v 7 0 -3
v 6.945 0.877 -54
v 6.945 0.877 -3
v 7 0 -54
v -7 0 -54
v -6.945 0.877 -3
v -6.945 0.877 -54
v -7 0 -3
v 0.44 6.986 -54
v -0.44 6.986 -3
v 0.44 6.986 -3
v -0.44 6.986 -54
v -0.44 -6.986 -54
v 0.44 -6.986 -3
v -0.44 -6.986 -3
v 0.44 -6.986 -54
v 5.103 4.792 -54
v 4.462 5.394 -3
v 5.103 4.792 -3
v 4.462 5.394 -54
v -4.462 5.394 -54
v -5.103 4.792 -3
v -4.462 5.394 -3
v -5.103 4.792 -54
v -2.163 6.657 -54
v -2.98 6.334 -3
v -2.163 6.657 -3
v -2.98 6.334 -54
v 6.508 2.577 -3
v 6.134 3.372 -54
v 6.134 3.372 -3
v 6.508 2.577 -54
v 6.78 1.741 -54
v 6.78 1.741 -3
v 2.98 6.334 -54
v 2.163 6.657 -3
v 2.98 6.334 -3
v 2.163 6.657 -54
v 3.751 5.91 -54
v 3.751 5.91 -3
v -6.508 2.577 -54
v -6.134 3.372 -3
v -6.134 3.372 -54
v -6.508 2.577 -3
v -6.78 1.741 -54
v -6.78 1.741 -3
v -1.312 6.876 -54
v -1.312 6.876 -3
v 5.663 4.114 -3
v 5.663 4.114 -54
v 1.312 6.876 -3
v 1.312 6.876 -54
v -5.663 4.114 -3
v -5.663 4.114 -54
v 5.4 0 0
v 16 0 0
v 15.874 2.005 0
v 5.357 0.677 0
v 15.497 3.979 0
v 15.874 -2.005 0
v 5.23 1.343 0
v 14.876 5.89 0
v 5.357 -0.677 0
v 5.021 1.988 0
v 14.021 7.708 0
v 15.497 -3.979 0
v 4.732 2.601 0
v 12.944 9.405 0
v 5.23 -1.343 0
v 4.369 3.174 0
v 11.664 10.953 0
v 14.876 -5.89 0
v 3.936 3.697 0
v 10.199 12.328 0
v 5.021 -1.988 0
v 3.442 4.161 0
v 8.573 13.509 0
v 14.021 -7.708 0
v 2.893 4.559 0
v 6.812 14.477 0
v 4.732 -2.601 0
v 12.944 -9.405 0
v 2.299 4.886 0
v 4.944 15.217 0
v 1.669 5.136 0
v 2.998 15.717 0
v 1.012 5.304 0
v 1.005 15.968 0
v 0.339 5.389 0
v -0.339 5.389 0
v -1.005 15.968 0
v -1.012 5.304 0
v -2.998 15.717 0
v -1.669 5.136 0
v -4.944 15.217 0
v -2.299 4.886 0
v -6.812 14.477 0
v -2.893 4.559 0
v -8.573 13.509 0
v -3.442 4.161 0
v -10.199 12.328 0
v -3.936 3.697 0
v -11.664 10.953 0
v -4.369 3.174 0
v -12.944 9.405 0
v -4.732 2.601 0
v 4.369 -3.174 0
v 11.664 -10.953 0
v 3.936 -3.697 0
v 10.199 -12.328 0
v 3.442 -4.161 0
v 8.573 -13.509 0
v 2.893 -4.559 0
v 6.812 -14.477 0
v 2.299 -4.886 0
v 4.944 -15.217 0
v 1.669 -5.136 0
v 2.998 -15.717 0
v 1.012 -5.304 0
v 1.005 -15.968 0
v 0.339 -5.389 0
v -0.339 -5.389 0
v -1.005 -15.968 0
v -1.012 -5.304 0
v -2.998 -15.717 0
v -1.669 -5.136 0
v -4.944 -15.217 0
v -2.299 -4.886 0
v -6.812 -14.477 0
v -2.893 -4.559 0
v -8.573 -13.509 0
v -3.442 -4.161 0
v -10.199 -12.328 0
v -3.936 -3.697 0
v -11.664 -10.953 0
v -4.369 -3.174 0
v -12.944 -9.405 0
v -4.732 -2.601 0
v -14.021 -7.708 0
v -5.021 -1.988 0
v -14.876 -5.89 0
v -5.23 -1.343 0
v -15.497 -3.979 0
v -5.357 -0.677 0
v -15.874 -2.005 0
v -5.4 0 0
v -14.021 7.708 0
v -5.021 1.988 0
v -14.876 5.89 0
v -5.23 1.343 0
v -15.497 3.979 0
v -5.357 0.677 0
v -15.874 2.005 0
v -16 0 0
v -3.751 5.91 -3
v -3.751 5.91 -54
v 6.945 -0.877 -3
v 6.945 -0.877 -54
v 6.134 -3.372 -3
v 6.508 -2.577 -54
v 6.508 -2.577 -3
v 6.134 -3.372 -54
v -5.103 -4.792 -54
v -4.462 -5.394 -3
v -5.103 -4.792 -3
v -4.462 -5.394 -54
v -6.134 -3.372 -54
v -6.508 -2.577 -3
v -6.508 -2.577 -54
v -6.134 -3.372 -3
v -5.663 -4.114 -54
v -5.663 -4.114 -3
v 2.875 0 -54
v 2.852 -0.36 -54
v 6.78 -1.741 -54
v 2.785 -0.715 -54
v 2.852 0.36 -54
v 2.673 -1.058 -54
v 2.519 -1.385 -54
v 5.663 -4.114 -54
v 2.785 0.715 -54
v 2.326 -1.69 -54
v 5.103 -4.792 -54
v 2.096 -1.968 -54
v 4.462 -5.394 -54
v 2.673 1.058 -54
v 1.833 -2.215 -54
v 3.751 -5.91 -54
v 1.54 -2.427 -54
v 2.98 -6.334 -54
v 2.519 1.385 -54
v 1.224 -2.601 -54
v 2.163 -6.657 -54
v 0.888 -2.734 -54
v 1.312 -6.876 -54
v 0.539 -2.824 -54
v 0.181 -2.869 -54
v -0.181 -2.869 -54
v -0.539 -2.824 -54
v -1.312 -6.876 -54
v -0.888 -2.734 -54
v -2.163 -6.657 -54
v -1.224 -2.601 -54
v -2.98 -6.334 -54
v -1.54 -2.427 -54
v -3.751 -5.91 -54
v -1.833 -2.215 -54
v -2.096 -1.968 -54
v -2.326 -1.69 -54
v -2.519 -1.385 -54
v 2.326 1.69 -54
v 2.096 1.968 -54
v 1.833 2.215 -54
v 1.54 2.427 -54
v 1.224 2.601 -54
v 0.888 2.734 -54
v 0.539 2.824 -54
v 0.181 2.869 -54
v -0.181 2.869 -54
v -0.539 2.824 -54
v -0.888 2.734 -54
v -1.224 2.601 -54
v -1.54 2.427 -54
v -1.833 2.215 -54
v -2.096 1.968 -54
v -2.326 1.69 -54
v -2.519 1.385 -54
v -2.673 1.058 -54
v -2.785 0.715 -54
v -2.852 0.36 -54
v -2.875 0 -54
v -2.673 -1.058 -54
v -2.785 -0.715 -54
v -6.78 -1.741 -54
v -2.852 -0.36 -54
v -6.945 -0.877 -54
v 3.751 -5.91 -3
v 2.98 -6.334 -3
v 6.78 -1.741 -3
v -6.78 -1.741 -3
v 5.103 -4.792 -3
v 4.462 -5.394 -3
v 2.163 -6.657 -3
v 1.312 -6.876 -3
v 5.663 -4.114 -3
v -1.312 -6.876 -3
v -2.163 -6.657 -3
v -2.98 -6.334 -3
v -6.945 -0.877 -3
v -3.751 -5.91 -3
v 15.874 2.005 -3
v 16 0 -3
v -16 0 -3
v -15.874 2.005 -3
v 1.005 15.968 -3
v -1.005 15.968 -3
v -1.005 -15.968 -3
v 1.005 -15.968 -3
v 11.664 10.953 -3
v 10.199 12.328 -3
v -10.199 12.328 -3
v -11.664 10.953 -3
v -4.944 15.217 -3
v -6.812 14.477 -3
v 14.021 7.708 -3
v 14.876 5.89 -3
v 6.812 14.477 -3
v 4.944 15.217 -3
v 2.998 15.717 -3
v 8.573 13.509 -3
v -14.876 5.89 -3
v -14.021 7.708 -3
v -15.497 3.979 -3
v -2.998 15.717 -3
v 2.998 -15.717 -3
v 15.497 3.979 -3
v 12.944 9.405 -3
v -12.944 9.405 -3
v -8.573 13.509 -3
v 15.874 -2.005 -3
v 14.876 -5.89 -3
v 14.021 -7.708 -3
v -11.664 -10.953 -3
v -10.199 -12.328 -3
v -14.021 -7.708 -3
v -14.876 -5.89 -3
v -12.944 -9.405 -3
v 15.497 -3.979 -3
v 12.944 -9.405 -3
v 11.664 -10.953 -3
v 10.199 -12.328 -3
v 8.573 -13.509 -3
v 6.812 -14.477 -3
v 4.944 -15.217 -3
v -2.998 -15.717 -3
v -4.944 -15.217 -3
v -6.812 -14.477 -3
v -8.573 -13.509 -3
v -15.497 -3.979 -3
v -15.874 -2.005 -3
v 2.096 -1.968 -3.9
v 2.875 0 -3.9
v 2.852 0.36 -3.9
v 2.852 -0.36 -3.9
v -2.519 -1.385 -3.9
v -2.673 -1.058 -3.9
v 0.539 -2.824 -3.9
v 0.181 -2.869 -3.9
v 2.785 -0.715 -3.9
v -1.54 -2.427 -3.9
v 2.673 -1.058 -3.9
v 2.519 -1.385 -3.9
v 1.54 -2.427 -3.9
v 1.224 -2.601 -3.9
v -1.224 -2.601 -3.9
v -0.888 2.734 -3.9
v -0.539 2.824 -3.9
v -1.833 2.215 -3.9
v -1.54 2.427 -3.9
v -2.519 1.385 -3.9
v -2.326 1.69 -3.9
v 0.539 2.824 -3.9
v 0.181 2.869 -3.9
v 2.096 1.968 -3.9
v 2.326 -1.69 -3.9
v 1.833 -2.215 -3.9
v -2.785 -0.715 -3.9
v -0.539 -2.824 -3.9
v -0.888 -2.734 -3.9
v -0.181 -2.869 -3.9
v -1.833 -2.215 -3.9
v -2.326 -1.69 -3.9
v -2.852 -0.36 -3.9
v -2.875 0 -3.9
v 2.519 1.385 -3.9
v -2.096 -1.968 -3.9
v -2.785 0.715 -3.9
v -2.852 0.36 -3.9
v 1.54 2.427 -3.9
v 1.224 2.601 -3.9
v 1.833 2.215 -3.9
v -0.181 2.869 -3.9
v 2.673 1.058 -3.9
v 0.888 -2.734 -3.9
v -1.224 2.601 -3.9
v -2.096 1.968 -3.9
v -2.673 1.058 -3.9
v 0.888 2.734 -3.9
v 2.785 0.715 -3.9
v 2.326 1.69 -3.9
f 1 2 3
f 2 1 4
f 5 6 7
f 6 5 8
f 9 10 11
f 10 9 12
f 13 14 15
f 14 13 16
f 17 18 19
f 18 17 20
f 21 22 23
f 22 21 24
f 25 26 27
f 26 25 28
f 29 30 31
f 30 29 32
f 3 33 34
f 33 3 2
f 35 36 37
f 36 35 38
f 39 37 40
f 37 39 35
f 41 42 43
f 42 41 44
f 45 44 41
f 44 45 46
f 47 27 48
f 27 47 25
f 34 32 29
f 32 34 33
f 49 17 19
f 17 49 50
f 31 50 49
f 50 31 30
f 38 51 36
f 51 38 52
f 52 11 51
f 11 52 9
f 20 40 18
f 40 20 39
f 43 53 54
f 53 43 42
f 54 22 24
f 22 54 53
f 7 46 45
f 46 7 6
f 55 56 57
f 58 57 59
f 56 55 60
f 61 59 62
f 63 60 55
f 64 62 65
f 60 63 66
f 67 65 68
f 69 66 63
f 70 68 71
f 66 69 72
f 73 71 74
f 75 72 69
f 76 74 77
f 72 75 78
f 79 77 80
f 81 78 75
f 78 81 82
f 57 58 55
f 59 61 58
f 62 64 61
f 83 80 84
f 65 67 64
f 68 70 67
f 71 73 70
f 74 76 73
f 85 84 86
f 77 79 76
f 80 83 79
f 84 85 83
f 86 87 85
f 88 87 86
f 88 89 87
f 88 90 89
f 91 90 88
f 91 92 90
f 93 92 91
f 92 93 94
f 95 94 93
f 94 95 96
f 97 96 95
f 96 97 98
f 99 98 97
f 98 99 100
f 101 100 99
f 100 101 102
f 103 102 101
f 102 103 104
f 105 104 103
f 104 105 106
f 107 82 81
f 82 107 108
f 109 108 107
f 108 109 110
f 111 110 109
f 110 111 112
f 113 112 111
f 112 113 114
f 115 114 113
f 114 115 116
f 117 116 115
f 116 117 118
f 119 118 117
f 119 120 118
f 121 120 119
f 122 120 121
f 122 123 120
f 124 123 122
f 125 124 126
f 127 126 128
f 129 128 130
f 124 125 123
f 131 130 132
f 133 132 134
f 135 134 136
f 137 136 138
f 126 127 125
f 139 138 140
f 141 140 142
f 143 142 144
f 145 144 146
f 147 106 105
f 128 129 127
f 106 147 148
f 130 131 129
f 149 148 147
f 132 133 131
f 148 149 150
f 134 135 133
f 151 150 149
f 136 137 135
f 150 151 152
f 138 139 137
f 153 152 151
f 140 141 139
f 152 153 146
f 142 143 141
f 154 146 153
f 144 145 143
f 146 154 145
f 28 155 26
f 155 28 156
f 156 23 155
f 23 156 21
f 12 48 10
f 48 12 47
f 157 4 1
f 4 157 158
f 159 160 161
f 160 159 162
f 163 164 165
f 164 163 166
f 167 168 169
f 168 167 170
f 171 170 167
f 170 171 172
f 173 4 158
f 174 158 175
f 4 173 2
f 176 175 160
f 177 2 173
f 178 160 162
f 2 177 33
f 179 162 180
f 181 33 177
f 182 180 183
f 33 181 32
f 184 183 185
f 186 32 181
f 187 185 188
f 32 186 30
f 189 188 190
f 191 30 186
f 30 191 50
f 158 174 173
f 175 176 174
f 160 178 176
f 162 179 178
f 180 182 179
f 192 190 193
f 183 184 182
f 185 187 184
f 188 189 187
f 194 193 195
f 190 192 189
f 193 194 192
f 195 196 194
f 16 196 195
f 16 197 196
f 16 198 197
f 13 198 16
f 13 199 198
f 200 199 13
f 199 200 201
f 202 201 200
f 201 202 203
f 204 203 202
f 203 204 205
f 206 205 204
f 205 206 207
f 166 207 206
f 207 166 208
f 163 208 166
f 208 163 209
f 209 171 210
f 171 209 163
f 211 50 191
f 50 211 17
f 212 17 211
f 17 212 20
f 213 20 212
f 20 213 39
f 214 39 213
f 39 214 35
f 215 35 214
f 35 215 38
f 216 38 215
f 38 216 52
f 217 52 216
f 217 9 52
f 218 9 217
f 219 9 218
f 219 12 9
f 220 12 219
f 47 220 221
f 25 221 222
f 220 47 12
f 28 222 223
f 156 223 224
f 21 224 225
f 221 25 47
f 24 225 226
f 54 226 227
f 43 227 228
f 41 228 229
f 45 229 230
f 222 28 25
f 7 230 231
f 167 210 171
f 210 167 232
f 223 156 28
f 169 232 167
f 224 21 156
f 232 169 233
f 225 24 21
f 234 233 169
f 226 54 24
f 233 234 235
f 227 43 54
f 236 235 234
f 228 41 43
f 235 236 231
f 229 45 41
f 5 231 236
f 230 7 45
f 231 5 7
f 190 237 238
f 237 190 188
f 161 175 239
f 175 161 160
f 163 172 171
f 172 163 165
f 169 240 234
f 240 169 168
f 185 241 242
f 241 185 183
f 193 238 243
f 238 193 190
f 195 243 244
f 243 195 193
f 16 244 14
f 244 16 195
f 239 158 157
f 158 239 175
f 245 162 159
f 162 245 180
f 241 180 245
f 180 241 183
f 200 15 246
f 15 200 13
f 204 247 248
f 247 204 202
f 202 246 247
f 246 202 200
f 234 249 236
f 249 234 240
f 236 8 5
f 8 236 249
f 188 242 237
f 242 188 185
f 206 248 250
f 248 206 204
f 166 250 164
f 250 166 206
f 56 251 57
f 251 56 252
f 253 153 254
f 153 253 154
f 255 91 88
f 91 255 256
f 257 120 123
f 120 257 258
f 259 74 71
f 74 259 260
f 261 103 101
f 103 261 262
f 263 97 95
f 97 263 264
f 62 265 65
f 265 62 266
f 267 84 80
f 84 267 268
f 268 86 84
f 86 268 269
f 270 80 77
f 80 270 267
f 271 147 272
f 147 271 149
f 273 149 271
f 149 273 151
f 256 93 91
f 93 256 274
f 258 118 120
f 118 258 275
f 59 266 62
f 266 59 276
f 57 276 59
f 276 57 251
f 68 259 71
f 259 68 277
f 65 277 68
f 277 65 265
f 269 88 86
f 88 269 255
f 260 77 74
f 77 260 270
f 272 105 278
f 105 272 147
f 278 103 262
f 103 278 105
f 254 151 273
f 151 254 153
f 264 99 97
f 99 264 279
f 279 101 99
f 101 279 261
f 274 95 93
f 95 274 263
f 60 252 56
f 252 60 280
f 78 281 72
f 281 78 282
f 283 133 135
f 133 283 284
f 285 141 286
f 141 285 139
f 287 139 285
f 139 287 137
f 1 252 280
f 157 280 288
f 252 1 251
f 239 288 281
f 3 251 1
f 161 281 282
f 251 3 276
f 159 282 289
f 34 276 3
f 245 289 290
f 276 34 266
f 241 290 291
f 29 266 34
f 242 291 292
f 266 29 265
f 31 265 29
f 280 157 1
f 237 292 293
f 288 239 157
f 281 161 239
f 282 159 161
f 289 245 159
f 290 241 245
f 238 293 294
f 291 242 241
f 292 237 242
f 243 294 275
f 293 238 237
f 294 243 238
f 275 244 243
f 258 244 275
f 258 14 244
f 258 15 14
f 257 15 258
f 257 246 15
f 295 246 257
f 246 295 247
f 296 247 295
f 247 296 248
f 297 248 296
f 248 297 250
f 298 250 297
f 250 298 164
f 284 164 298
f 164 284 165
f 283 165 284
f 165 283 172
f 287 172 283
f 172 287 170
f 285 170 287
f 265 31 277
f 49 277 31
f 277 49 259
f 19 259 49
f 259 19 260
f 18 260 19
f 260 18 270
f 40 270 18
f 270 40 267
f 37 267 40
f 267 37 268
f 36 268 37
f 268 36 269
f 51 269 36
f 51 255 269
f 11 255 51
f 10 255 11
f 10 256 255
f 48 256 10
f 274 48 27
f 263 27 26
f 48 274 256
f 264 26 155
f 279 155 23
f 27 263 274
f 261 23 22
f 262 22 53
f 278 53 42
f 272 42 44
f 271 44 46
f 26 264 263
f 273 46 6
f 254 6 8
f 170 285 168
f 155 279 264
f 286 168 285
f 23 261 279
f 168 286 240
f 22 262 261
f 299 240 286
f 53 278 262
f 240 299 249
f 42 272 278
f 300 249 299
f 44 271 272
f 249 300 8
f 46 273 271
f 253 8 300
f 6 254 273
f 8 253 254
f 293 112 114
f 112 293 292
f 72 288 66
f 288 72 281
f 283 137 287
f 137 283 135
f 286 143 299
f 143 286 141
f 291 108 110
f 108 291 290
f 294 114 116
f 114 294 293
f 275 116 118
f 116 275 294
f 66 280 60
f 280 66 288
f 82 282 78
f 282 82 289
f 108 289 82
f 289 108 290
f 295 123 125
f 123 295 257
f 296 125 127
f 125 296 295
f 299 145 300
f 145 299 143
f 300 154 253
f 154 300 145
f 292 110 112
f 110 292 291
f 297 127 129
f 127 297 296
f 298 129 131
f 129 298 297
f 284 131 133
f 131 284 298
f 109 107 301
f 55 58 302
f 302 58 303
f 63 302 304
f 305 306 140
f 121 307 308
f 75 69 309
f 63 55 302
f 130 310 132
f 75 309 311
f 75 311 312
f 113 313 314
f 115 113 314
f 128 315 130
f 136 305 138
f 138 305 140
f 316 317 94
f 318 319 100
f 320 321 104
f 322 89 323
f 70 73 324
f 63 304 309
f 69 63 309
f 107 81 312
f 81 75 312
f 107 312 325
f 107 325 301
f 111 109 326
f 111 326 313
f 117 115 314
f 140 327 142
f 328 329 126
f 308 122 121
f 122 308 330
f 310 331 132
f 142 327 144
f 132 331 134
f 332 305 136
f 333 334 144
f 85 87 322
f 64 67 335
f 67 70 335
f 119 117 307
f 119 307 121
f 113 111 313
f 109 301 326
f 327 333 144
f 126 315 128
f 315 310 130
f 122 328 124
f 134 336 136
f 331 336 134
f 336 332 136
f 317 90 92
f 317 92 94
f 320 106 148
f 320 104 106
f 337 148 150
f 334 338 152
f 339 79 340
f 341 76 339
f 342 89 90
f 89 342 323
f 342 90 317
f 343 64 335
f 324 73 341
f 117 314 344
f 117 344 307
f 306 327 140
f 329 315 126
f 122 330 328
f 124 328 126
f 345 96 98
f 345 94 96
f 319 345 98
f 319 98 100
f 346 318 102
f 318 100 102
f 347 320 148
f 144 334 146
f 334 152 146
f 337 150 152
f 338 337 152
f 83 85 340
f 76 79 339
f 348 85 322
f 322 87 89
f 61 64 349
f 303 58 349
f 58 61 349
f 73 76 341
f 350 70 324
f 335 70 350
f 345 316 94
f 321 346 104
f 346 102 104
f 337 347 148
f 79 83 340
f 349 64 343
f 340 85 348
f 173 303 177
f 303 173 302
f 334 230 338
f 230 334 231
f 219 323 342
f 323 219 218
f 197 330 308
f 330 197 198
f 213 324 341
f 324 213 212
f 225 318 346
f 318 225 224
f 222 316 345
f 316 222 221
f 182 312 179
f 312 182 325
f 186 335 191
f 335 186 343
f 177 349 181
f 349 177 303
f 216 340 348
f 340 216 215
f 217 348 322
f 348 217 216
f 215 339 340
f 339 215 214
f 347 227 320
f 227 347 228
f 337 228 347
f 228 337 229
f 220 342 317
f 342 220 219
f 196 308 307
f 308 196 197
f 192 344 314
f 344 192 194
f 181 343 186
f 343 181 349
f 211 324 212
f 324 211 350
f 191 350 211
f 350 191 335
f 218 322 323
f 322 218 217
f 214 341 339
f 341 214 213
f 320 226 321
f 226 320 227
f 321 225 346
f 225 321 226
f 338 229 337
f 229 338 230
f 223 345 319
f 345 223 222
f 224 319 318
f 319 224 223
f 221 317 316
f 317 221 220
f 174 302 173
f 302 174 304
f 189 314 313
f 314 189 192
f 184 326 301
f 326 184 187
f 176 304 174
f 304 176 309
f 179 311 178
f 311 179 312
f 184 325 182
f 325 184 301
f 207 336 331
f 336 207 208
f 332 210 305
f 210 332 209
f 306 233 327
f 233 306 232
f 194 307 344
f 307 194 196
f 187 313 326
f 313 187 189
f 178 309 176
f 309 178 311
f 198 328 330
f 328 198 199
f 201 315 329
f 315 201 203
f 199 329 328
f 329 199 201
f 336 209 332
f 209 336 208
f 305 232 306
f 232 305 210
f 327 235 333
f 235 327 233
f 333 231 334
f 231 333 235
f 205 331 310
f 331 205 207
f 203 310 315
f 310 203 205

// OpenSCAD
$fn = 50;


difference() {
	union() {
		translate(v = [0, 0, -54.0000000000]) {
			cylinder(h = 54, r = 7.0000000000);
		}
		translate(v = [0, 0, -3.0000000000]) {
			cylinder(h = 3, r = 16.0000000000);
		}
	}
	union() {
		translate(v = [0, 0, 0]) {
			rotate(a = [0, 0, 0]) {
				difference() {
					union() {
						#translate(v = [0, 0, -54.0000000000]) {
							cylinder(h = 54, r = 2.6000000000);
						}
						#translate(v = [0, 0, -3.9000000000]) {
							cylinder(h = 3.9000000000, r1 = 2.8750000000, r2 = 5.4000000000);
						}
						#translate(v = [0, 0, -54.0000000000]) {
							cylinder(h = 54, r = 2.8750000000);
						}
						#translate(v = [0, 0, -54.0000000000]) {
							cylinder(h = 54, r = 2.6000000000);
						}
					}
					union();
				}
			}
		}
	}
}
